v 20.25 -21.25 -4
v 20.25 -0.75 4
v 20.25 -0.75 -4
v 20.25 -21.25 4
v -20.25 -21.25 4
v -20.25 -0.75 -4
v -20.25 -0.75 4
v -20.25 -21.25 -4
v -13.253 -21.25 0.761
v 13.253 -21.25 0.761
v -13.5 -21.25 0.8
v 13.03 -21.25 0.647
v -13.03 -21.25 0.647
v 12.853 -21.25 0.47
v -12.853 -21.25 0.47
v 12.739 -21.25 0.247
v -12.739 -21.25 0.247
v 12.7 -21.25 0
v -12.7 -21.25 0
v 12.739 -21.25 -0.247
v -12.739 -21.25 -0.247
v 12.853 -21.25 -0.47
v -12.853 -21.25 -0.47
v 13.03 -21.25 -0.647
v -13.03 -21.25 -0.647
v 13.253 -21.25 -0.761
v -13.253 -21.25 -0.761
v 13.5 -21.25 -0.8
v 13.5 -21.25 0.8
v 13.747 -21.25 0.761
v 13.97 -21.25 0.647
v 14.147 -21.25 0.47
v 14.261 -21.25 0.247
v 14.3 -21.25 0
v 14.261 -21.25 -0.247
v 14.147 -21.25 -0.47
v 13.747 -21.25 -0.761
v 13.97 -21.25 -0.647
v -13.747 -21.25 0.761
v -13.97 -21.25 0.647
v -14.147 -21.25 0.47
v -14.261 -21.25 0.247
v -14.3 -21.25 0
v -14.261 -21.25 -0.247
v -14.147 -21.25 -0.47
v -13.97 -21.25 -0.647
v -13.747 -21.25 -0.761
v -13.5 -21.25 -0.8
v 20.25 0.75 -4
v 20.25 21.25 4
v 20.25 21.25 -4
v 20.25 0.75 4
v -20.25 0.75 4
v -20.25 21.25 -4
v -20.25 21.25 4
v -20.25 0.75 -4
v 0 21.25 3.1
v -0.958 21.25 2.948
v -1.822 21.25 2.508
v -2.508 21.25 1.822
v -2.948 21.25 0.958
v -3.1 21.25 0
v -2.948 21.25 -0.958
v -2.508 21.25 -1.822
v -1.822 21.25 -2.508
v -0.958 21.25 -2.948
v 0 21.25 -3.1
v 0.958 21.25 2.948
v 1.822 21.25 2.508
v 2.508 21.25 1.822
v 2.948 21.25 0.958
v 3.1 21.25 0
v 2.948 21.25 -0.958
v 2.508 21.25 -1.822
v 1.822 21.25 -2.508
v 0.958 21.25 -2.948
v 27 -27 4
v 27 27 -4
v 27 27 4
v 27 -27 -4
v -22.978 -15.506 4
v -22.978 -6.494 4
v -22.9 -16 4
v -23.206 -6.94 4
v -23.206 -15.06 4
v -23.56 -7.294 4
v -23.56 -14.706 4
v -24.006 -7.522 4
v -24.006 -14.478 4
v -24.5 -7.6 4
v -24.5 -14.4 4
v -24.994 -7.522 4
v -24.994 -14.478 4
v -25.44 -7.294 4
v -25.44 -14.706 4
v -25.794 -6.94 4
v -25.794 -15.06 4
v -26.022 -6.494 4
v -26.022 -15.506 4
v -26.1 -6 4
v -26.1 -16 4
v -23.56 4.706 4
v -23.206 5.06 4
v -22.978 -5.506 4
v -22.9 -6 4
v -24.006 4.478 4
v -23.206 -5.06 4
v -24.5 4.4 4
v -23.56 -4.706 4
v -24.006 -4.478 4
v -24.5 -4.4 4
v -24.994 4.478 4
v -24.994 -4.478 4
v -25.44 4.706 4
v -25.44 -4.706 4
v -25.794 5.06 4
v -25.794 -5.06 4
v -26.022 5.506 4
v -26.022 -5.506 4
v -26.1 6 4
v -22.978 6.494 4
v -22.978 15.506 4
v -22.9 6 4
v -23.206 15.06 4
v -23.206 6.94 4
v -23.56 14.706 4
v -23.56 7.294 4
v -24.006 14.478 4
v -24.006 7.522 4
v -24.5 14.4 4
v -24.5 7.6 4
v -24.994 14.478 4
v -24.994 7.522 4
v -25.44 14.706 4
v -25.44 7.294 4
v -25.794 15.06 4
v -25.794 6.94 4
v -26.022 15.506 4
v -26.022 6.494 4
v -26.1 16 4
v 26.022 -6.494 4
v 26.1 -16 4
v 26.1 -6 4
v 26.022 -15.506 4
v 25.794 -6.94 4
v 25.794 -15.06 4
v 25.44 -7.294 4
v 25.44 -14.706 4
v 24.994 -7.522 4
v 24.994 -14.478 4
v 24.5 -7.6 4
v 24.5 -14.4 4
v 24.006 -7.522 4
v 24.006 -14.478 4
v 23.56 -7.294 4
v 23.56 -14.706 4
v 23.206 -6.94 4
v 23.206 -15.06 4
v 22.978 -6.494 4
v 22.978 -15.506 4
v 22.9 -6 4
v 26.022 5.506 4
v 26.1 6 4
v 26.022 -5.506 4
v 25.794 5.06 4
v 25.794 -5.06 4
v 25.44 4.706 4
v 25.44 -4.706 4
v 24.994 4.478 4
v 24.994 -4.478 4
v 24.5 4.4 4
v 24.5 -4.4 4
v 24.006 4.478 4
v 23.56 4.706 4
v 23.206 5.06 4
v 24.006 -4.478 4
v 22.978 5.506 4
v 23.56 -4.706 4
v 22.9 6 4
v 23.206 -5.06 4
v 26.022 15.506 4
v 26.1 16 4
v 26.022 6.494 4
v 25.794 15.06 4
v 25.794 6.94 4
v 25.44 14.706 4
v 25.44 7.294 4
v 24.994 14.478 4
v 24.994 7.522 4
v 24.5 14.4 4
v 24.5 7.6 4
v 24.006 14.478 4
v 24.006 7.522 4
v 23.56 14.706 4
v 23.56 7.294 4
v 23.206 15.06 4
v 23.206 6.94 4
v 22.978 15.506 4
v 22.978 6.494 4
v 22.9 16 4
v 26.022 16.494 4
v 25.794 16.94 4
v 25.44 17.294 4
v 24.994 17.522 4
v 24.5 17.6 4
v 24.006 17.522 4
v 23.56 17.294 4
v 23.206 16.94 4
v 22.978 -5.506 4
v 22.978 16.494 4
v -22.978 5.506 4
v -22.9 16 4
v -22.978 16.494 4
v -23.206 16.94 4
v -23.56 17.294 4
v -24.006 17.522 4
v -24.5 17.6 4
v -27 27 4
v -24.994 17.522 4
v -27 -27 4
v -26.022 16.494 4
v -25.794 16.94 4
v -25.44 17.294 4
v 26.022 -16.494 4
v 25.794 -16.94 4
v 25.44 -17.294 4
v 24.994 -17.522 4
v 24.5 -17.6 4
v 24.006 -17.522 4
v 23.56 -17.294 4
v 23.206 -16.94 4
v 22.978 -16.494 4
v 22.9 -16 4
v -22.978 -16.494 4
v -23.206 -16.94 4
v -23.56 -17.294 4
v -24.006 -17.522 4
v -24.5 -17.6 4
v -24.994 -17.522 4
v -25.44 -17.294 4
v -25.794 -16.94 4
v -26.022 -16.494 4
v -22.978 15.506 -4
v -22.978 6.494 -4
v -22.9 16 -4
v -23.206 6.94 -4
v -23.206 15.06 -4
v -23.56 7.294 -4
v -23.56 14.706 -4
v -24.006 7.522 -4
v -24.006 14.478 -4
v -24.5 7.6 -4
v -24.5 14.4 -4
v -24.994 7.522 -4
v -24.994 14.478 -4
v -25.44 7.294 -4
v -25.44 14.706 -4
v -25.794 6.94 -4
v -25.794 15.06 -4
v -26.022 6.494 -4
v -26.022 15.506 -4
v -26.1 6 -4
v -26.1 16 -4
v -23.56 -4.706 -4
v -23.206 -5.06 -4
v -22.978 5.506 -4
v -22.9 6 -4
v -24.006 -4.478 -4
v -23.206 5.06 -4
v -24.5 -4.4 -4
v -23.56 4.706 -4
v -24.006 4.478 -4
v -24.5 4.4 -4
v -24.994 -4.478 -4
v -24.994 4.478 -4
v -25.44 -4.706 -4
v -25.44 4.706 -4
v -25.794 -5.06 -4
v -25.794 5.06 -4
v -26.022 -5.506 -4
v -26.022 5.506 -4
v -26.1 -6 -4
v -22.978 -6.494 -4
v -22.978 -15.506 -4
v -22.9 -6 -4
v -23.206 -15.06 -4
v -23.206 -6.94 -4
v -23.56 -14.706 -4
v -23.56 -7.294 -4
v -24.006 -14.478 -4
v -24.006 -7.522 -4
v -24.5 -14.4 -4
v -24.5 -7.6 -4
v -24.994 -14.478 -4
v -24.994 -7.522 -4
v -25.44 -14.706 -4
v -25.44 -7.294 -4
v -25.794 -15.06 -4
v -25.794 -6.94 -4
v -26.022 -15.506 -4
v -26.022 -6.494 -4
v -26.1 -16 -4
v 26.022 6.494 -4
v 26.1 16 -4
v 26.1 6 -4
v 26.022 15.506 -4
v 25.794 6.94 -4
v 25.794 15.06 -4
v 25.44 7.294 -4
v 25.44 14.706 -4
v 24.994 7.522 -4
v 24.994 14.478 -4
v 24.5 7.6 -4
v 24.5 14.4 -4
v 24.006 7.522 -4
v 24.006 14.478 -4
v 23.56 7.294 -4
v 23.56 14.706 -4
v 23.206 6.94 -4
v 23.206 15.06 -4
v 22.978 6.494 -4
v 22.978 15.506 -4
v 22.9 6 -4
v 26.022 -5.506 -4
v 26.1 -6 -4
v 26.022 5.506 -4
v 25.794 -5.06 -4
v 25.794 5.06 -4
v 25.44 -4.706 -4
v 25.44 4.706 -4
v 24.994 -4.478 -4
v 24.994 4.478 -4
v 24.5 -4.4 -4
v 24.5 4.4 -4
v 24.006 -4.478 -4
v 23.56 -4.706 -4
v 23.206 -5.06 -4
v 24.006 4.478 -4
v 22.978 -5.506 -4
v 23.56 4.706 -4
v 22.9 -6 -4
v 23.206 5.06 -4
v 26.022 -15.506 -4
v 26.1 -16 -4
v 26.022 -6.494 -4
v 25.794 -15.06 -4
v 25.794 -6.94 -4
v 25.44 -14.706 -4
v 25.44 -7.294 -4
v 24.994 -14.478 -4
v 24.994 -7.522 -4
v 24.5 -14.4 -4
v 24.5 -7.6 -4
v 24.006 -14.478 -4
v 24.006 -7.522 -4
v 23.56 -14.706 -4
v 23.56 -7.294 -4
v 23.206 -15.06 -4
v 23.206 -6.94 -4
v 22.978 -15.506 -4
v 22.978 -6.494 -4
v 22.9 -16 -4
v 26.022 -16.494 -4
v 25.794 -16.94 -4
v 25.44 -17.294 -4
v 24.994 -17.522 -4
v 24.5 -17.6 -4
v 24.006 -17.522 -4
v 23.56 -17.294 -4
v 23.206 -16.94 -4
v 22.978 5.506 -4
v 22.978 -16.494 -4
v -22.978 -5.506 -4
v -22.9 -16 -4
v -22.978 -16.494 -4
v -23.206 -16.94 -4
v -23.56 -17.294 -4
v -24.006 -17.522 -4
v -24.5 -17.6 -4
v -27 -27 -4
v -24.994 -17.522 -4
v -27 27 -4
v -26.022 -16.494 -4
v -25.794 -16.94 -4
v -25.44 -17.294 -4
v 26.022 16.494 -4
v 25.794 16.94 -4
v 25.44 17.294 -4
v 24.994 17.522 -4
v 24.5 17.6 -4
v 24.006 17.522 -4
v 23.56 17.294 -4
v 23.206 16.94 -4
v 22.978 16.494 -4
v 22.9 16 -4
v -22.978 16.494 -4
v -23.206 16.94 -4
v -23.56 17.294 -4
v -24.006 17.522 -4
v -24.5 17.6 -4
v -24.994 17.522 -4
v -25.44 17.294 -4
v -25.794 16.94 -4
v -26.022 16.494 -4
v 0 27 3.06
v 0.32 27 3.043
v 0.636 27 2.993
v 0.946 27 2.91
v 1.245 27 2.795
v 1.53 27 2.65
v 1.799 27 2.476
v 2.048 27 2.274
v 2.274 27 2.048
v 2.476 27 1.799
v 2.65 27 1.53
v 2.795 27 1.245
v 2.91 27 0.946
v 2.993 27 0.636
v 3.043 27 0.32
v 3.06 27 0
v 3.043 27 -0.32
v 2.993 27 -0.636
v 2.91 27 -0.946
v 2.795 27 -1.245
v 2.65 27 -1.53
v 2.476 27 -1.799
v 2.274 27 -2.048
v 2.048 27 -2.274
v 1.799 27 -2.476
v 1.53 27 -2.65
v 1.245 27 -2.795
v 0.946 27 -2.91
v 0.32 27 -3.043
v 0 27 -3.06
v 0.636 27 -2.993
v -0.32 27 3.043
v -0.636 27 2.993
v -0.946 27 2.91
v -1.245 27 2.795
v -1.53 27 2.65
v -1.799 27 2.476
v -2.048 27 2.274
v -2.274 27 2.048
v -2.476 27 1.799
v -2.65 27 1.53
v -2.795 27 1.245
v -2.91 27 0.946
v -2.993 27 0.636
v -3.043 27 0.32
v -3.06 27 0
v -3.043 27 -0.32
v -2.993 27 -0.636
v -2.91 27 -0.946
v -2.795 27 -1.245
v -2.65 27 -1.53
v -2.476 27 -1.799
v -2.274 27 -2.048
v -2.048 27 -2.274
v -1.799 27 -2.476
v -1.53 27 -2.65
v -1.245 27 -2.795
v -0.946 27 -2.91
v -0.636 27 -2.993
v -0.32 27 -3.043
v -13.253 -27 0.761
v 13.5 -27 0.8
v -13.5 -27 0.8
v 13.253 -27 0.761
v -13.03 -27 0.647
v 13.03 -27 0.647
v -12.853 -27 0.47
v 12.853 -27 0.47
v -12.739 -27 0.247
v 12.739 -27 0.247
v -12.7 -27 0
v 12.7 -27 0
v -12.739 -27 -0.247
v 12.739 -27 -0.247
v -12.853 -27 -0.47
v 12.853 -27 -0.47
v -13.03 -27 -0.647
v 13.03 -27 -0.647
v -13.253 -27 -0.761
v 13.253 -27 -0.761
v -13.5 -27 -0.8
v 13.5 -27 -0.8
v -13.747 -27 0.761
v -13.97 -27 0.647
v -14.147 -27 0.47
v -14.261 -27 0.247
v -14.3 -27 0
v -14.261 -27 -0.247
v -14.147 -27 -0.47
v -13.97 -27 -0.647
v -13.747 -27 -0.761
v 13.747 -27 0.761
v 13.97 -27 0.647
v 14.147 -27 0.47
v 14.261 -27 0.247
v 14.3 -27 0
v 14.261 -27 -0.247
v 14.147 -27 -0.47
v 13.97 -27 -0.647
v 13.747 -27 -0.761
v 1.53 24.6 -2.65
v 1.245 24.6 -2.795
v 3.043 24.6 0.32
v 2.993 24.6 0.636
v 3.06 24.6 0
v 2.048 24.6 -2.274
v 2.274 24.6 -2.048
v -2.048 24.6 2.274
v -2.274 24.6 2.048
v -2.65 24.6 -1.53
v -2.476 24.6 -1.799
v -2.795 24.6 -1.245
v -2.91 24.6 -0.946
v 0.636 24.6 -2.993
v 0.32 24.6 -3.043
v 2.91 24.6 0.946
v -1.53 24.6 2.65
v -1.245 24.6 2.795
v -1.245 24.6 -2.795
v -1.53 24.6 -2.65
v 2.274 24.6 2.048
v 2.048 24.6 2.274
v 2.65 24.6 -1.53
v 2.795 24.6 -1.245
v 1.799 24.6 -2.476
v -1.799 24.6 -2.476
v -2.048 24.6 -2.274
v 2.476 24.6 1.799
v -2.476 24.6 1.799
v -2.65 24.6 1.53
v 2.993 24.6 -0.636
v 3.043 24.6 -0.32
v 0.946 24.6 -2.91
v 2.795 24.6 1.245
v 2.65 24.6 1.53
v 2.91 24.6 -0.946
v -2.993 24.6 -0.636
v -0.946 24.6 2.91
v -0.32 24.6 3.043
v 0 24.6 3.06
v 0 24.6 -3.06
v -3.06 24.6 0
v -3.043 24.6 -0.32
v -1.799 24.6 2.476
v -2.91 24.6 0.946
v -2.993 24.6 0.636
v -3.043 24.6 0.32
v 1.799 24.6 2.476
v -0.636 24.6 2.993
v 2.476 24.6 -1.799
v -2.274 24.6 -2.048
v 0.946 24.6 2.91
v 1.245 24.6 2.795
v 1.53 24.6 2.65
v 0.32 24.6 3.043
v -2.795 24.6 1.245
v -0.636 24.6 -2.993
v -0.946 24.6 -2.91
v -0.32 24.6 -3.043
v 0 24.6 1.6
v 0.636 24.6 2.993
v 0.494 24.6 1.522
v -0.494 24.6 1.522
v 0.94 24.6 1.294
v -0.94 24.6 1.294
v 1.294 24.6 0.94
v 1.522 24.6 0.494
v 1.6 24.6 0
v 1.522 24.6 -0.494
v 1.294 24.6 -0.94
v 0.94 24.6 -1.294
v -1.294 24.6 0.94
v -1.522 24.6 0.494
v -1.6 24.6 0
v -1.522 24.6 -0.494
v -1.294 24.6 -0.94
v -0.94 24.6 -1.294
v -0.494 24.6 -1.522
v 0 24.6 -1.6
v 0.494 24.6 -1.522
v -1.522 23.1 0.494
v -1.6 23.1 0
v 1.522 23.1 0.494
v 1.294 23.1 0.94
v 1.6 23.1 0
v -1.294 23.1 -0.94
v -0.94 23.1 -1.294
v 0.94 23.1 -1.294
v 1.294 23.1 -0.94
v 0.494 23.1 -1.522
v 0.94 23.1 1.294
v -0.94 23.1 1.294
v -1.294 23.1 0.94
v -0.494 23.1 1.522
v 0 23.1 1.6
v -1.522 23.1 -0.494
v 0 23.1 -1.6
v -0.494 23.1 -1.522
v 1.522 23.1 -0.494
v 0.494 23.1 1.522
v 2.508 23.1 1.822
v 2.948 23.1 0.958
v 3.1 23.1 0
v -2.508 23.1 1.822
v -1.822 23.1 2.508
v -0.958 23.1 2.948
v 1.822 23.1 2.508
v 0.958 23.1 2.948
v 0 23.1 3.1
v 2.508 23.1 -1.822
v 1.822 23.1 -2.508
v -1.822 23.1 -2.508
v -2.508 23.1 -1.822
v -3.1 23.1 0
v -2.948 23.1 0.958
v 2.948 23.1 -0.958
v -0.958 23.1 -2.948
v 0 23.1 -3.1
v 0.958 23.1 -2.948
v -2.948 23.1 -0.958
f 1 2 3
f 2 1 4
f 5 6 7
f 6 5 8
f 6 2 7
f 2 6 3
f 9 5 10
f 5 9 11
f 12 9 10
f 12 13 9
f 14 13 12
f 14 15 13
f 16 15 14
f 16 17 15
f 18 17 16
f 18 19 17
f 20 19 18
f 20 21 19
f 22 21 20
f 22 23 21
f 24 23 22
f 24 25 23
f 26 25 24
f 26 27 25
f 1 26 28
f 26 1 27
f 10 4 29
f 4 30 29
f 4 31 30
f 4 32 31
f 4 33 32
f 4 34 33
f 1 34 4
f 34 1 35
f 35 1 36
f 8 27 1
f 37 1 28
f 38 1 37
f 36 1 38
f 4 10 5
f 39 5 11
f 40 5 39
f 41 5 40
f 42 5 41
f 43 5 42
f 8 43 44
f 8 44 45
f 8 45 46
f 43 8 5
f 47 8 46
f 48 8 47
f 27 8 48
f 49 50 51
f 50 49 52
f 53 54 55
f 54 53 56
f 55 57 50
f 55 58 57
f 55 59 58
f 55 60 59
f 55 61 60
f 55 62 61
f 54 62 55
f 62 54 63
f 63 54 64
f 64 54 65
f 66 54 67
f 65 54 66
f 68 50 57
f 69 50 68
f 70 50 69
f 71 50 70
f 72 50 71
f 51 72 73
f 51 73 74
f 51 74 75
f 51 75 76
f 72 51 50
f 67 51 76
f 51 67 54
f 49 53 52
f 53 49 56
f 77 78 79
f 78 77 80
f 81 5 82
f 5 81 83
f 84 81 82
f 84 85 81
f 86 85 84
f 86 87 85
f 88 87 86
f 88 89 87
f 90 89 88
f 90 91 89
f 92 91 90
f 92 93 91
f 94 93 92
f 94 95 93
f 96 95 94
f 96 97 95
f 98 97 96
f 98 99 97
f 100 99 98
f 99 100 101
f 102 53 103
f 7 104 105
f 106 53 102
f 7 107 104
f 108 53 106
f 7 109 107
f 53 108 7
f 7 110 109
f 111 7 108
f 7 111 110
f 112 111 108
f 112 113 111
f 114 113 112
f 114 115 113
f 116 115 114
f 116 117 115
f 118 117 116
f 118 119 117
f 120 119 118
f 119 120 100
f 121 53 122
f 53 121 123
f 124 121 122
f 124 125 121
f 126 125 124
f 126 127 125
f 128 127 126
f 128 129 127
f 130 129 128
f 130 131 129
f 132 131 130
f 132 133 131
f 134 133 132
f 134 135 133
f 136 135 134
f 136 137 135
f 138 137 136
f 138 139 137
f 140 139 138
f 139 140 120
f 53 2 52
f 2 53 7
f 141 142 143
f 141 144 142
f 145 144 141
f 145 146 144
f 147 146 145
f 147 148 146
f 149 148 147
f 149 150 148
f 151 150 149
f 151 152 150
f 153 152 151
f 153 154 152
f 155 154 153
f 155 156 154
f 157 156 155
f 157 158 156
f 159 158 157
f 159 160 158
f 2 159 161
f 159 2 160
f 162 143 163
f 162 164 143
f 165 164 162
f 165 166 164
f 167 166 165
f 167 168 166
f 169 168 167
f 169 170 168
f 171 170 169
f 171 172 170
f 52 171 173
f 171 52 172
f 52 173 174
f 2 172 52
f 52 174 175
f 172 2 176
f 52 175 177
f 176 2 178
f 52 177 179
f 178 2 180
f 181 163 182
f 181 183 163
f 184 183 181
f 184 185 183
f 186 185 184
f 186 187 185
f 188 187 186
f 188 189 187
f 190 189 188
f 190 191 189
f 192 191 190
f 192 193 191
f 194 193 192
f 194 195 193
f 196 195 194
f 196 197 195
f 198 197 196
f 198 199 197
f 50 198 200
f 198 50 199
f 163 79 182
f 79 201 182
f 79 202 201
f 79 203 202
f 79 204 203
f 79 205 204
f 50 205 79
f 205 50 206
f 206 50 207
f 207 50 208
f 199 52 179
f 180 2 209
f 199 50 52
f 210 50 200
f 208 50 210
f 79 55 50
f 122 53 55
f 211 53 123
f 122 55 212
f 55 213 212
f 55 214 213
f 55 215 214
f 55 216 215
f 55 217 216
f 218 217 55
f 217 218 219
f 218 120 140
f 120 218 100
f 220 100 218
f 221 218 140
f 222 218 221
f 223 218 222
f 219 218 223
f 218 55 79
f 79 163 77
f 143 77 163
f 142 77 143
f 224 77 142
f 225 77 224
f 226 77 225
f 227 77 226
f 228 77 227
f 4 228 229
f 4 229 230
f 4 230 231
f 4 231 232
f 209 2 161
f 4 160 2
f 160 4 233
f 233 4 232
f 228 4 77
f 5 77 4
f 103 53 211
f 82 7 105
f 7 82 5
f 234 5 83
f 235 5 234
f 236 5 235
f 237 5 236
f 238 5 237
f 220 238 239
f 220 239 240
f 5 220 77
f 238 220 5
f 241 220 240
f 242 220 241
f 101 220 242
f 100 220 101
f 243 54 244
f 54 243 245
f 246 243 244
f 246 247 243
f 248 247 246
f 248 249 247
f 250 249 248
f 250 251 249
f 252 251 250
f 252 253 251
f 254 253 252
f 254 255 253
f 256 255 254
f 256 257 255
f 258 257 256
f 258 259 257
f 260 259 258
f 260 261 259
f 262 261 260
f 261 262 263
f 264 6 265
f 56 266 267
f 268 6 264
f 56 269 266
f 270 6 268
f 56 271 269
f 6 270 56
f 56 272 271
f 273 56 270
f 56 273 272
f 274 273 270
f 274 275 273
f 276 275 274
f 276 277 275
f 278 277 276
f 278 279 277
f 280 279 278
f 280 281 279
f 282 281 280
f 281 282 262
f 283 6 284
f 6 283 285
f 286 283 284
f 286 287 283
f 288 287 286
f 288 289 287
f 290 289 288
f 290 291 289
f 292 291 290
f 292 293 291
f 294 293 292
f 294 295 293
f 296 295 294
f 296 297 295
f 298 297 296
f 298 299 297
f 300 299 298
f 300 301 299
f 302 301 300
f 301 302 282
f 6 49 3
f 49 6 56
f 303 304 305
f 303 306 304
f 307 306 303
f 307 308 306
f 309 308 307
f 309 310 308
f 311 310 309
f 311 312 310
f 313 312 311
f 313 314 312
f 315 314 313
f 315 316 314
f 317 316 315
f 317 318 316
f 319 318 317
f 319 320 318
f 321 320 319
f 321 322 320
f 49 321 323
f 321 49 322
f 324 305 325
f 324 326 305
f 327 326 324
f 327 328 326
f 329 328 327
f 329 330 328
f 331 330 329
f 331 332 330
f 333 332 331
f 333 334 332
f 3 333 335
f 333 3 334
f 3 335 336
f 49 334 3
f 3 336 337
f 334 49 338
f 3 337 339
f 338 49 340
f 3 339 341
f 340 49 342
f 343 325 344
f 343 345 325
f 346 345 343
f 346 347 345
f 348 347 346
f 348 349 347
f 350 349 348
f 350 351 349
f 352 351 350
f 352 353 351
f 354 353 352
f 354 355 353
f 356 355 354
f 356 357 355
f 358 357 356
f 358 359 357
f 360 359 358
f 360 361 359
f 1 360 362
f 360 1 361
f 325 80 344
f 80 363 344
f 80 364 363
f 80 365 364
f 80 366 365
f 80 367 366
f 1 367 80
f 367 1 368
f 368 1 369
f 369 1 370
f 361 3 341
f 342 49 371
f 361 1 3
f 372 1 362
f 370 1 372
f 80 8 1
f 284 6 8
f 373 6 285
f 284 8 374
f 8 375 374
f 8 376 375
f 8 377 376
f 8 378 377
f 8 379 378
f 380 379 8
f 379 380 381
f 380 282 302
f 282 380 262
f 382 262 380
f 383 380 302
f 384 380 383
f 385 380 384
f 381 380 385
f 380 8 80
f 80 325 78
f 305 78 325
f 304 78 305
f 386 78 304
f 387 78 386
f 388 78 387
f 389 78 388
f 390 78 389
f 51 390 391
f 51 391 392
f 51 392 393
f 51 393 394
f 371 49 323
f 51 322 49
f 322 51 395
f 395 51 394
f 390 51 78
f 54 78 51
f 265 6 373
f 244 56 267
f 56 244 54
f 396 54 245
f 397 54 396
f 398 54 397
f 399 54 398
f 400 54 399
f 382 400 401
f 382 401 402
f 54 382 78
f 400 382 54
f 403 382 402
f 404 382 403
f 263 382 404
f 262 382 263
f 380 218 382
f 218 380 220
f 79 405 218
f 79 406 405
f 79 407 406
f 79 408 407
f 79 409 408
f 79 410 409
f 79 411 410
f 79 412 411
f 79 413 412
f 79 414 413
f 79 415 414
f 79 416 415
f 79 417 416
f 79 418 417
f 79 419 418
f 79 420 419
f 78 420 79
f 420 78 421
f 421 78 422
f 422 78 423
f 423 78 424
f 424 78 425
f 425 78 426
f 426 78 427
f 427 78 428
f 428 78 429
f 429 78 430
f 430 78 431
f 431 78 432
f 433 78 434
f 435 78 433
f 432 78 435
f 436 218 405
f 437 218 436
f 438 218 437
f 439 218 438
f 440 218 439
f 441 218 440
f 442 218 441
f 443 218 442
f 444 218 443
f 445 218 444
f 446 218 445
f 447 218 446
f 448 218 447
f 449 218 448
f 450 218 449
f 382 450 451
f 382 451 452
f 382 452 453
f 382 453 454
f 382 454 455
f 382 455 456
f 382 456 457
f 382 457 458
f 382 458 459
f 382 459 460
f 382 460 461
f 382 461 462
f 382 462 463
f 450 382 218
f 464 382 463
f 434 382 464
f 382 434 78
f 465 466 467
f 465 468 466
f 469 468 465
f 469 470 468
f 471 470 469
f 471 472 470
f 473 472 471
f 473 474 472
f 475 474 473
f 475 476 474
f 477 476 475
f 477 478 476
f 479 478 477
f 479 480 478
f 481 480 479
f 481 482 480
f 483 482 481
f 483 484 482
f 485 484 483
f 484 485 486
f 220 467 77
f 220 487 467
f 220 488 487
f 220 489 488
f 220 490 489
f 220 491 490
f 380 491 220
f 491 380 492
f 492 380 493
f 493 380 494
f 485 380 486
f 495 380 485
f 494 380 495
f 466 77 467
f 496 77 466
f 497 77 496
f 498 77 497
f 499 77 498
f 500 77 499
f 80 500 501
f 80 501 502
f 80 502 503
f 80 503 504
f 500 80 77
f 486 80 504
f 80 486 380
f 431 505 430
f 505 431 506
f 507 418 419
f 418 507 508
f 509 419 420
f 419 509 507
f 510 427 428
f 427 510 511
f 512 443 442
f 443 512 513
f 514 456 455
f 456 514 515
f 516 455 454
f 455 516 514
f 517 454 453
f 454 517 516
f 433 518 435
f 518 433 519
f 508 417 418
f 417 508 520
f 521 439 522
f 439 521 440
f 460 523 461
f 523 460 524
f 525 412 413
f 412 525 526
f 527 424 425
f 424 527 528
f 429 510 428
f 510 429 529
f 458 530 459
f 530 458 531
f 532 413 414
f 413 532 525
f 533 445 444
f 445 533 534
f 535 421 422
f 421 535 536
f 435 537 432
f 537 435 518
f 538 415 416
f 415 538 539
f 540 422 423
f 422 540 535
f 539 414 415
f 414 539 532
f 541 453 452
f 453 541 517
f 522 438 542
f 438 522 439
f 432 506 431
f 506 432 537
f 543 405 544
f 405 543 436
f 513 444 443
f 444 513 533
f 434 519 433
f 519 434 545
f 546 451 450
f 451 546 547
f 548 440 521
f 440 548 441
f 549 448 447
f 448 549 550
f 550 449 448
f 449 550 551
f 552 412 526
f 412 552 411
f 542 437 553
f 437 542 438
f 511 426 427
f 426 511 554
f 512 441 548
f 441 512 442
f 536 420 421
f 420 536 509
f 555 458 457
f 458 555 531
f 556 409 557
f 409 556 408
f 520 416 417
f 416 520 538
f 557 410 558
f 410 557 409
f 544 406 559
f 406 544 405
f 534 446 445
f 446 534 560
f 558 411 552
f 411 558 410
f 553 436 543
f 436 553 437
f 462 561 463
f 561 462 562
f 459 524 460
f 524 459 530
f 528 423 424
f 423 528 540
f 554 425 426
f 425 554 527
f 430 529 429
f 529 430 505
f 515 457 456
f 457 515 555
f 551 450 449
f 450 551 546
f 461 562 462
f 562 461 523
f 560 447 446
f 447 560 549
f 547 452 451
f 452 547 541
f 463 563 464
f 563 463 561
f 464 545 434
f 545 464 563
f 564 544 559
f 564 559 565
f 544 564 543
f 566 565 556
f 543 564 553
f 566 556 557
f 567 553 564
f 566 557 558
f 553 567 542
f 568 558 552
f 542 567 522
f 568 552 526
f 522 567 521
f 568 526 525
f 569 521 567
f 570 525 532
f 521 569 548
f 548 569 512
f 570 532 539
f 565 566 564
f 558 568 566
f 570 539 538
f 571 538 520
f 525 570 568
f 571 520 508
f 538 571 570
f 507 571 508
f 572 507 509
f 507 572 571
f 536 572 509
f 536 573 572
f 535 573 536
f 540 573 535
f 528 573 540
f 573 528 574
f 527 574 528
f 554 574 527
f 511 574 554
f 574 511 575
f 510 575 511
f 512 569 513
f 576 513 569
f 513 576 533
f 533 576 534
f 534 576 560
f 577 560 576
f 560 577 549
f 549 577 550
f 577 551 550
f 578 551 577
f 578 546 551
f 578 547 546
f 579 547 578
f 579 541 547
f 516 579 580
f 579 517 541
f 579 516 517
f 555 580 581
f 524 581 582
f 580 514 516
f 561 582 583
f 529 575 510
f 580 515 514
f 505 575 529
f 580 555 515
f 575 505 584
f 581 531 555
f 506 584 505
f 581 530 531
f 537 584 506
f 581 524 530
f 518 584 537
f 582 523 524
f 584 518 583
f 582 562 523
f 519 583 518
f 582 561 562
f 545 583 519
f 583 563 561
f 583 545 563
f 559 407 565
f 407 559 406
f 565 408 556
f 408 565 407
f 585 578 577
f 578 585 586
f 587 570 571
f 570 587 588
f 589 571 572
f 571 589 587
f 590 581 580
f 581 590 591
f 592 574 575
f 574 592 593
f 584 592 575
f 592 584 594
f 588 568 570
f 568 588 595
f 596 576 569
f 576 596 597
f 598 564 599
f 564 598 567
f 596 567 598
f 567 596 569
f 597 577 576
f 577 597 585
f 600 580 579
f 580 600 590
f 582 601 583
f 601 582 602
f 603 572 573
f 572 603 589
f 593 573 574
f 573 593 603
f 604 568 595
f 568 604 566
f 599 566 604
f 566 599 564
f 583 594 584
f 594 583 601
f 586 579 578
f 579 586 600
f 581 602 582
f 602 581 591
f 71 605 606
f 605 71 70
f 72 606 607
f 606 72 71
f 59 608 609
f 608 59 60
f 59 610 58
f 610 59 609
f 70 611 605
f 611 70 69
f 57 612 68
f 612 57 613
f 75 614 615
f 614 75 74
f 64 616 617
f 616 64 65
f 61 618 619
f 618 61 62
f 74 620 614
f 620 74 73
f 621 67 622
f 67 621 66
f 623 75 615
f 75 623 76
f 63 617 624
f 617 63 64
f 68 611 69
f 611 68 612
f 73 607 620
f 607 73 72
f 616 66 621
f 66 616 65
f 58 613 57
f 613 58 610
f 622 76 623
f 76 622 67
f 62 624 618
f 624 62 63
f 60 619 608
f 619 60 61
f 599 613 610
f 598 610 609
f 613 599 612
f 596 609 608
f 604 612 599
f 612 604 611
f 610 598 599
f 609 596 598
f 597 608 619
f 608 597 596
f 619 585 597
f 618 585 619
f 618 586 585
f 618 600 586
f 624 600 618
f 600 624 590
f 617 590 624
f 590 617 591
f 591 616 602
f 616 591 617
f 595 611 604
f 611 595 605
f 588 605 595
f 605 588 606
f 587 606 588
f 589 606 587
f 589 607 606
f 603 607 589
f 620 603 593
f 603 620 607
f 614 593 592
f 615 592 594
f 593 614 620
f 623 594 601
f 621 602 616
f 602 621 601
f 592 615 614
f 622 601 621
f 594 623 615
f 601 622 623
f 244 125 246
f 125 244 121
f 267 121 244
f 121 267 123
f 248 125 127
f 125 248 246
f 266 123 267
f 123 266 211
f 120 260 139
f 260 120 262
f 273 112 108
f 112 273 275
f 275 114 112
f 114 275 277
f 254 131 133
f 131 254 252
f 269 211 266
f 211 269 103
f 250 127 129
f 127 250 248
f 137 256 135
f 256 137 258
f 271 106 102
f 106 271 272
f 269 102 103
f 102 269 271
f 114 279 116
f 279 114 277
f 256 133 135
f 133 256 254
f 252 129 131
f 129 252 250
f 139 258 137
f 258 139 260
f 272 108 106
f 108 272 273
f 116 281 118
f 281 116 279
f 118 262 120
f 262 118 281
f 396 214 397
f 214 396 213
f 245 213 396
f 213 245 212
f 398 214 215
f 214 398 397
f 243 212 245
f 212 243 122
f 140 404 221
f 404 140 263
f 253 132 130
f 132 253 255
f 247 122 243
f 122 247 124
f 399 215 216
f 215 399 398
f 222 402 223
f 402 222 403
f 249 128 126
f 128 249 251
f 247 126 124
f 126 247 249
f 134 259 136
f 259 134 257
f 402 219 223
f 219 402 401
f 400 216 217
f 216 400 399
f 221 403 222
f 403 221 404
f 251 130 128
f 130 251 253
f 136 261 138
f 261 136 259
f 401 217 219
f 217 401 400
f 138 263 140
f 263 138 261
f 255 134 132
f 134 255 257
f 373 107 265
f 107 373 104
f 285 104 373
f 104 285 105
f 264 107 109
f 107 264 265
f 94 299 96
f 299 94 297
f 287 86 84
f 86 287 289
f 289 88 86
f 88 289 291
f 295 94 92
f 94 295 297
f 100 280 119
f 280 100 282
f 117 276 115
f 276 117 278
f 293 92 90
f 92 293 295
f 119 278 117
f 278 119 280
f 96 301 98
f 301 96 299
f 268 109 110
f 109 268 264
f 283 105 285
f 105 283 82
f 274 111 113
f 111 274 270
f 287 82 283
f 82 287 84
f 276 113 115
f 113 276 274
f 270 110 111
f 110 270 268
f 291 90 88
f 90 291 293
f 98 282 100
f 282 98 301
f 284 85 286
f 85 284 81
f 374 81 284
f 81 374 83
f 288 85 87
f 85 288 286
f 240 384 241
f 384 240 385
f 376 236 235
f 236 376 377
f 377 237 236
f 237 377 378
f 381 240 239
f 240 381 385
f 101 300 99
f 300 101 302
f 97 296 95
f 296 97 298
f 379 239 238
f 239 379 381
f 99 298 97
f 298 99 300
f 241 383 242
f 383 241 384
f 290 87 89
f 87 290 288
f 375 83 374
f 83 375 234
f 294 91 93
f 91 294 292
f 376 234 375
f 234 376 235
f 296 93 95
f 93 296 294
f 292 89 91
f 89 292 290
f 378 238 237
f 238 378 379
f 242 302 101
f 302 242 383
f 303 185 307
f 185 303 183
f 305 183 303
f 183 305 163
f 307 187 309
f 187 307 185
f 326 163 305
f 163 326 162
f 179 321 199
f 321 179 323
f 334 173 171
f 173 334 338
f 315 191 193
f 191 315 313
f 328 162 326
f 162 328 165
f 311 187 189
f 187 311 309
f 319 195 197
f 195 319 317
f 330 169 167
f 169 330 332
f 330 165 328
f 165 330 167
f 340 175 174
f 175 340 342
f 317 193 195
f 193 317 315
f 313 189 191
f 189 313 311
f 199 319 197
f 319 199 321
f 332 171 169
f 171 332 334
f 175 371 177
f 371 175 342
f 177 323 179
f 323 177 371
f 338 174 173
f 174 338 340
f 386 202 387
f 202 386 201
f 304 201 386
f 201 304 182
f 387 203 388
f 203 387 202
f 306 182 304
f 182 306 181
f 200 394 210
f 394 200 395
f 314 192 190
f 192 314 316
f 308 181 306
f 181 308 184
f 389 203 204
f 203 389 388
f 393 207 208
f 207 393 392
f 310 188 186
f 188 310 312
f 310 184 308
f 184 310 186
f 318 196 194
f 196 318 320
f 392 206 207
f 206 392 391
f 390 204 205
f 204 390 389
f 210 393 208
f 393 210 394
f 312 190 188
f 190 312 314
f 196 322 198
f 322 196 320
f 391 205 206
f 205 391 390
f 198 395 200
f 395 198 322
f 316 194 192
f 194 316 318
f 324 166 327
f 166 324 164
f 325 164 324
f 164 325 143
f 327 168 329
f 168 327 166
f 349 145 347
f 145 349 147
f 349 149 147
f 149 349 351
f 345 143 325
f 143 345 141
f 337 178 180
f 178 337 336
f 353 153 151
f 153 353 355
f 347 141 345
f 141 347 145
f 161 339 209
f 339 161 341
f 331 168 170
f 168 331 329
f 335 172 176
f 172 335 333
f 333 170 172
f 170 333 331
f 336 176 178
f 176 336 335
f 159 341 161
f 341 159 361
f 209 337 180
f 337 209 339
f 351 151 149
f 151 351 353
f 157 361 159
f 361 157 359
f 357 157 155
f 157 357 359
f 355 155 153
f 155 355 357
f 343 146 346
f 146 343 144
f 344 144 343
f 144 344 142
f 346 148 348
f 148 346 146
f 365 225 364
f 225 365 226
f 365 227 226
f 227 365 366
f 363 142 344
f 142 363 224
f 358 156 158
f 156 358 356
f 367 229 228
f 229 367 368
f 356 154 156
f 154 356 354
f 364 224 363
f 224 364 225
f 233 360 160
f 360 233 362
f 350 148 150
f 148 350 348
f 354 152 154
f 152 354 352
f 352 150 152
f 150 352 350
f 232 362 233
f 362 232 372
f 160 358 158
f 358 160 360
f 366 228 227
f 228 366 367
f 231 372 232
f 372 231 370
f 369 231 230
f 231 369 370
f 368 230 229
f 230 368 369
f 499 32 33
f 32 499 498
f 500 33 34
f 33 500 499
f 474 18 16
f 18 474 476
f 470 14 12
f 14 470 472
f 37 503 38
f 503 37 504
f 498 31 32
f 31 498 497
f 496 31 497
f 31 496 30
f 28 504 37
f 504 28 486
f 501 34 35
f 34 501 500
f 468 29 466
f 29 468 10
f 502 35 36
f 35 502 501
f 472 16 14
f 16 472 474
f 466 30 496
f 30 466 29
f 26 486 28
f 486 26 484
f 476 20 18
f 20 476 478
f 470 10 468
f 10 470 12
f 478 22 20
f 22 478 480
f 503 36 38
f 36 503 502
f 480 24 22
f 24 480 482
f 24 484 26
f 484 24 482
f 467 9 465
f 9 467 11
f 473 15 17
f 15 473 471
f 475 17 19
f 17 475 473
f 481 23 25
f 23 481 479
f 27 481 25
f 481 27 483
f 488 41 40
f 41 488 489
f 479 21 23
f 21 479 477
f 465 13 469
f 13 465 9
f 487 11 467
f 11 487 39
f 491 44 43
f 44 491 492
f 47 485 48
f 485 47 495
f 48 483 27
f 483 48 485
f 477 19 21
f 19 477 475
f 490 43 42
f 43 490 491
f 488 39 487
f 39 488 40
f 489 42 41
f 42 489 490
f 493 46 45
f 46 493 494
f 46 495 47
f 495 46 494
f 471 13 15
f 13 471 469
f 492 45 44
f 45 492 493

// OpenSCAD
// file: servo.scad
/*************************************************
 hitec Servo Library
 Author: Maarten Weyn
 Website: http://mweyn.wesdec.be

 v0.4


 Servo Modules:
 - Servo_Hitec_HS_645MG(showaxis=false)
 - Servo_Hitec_HS_485HB(showaxis=false)

 * showaxis shows the other side of the axis which can be used as a connection point

  Horn Modules
 - Horn_Hitec_HD_LS(fulldetail=true) Heavy Duty L Horn
 - Horn_Hitec_R_X(fulldetail=true)  Regular X Horn

 * fulldetail=false only gives the exterior which makes it easier to use in a difference


Changes
v0.4: 
	- added cylinder near label
	- fixed cylinder radios on top (near axis) for HS 485HB


*************************************************/


$fn=50;

// Servos
module Servo_Hitec_HS_645MG(showaxis=false)
{
	Servo_Hitec_Standard(showaxis, 40.6, 19.8, 35.8, 2, 27, 6.4, 30.7, 13, 6, 6, 3.5, 5);
}

module Servo_Hitec_HS_485HB(showaxis=false)
{
	Servo_Hitec_Standard(showaxis, 40, 19.82, 34.8, 3, 28, 6.55, 30, 14, 1, 6, 3.5, 1);
}

module Servo_Hitec_Standard(showaxis=false, boxlength, boxwidth, boxheight, topheight, connectionheight, connectionlength, axisxposition, topclinderradius, wirelength, wirewidth, wireheight, wirezposition)
{

	translate([-axisxposition, -boxwidth/2, -boxheight]) 
	{
		cube([boxlength, boxwidth, boxheight]);

		Servo_HS_Standard_Connections(connectionheight, connectionlength, boxwidth);
		rotate(180) translate([-boxlength, -boxwidth,0]) Servo_HS_Standard_Connections(connectionheight, connectionlength, boxwidth);

		translate([axisxposition, boxwidth/2, boxheight]) cylinder(h=topheight,r=19.8/2);
		translate([6, 1.15, boxheight]) cube([22.1, 17.5, topheight]);
		
		translate([8.5, boxwidth/2, boxheight]) cylinder(h=topheight,r=5.5);

		translate([axisxposition, boxwidth/2, boxheight + topheight]) cylinder(h=2,r=topclinderradius/2);
		translate([axisxposition, boxwidth/2, boxheight + topheight + 2]) cylinder(h=3.2,r=5.5/2);

		translate([boxlength,(boxwidth-wirewidth)/2,wirezposition]) cube([wirelength, wirewidth,wireheight]);

		if (showaxis)			
			translate([axisxposition, boxwidth/2, -7]) %cylinder(h=50,r=5.5/2);

	}
}

module Servo_HS_Standard_Connections(zPosition, length, width )
{
	translate([-length,0,zPosition])	
		difference()
		{
			union()
			{
				cube([20, width, 2]);
				
				translate([0,width/2,0])
				hull()
				{
					cube([0.1, 1, 2.5]);
					translate([length - 0.01,0,0])	 cube([1, 1, 4]);
				}
			}


			for(y=[4.8, 15])
			{
				translate([-1, y-1.25, -1]) cube([3, 2.5, 4]);
				translate([2.5,y,-1]) cylinder(h=4,r=2.21);
			}
		}
}


// Horns
module Horn_Hitec_HD_LS(fulldetail=true)
{

	hornScrewDiameter = 1.6;

	translate([0, 0, -1])
	difference()
	{
	union()
	{
		hull()
		{
			cylinder(h=2, r=7);
			translate([22, 0, 0]) cylinder(h=2, r=4);
		}
		
		hull()
		{
			translate([0, 0,  -1]) 
			{
				cylinder(h=4, r=5.5);
				translate([0, -5,  0])  cube([6, 10, 4]);
			}
	
			cylinder(h=2, r=7);
			translate([0, -6,  0])  cube([7, 12, 2]);			
		}

		hull()
		{
			translate([0, 0,  -3]) 
			{
				cylinder(h=2, r=4);
				translate([0, 0,  1.8])  cylinder(h=0.2, r=5.5);
			}	
		}		
	}

	if (fulldetail)
	{
		union()
		{
			translate([0, 0, -4]) cylinder(h=8, r=1);
			translate([0, 0,  1]) cylinder(h=3, r=4.5);
			translate([0, 0, -4]) cylinder(h=4, r=3);
		}

		for ( x = [13, 16, 19, 22]) {
			translate([x, 0,  -1])cylinder(h=4, r=hornScrewDiameter/2);
		}
	}
	}
}

module Horn_Hitec_R_X(fulldetail=true)
{
	hornScrewDiameter = 1.5;
	difference()
	{
		union()
		{
			hull()
			{
				cylinder(h=2, r=5.5);
				translate([13.25,0,0]) cylinder(h=2, r=2);
				translate([-13.25,0,0]) cylinder(h=2, r=2);
			}
			hull()
			{
				cylinder(h=2, r=5.5);
				translate([0,13.75,0]) cylinder(h=2, r=2);
				translate([0,-13.75,0]) cylinder(h=2, r=2);
			}

			translate([0,0,-2]) cylinder(h=4, r=4.4);
			cylinder(h=2.5, r=4);
		}

		if (fulldetail)
		{
			translate([0,0,-3]) cylinder(h=8, r=1.5);
			translate([0,0,1.5]) cylinder(h=2, r=3);
			translate([0,0,-5]) cylinder(h=6, r=2.5);

			for ( x = [-12.5, -10, -7.5, 7.5, 10, 12.5]) {
				translate([x, 0,  -1]) cylinder(h=4, r=hornScrewDiameter/2);
			}
			for ( y = [-13, -10.5, -8, 8, 10.5, 13]) {
				translate([0, y,  -1]) cylinder(h=4, r=hornScrewDiameter/2);
			}
		}
	}	
}

module servo()
{
   boxlength = 40.0;
   boxwidth = 20.0;
   boxheight = 41.0;
  //topheight, connectionheight, connectionlength, axisxposition, topclinderradius, wirelength, wirewidth, wireheight, wirezposition
  
		Servo_Hitec_Standard(false, boxlength, boxwidth, boxheight, 0, 28, 7.0, 30, 16, 6, 6, 3.5, 5);
}

// a module to make difference into another model, it just add some tolerance
module servo_for_difference()
{
   boxlength = 40.0 + 0.2;
   boxwidth = 20.0 + 0.2;
   boxheight = 41.0 + 0.2;
  //topheight, connectionheight, connectionlength, axisxposition, topclinderradius, wirelength, wirewidth, wireheight, wirezposition
  
		Servo_Hitec_Standard(false, boxlength, boxwidth, boxheight, 0, 28, 7.0, 30, 16, 6, 6, 3.5, 5);
}

// 10 mm distance between screws
//translate([15,5,-14])cylinder(d=3,h=10,$fn=30);
//translate([15,-5,-14])cylinder(d=3,h=10,$fn=30);
module servo_for_mujoco(){
  rotate([90,90,0])
  servo();
  }

//servo();
  //rotate([180,0,270])servo_for_mujoco();
// main file
include <servo.scad>
width = 6; // width of one side in Y axis
tilt_screw_separation =27/2;// tilt servo screw distance separation
bearing_distance = 0.1+3.5; // 0.1 lo minimo
heigth = 8;
m3=3.2;
bearing_diameter=6.12;


module servo_mount(){
  tolerance = 0.5;
  cube([40.0+tolerance, 20.0+tolerance, 41.0+tolerance], center=true);
  }

module two_servo_base(){
translate([10,0,0])
difference(){
  translate([-10,0,0])cube([54,42+width*2,heigth], center=true);
  
color([1,0,0,0.2])
union(){
translate([-10,-11,0])servo_mount();
translate([-10,11,0])servo_mount();  
}


// mr63zz bearing
translate([-10,41+bearing_distance,0])rotate([90,0,0])cylinder(d=bearing_diameter,h=20,$fn=60);
// bearing screw 3mm
translate([-10,40,0])rotate([90,0,0])cylinder(d=m3,h=20,$fn=20);

translate([-10,21.1+2,0])rotate([90,0,0])cylinder(d=m3+3,h=12,$fn=20);


// arm servo screws
translate([-34.5,6,-10])cylinder(d=m3,h=20,$fn=20);
translate([-34.5,16,-10])cylinder(d=m3,h=20,$fn=20);
translate([-34.5,-6,-10])cylinder(d=m3,h=20,$fn=20);
translate([-34.5,-16,-10])cylinder(d=m3,h=20,$fn=20);

translate([14.5,6,-10])cylinder(d=m3,h=20,$fn=20);
translate([14.5,16,-10])cylinder(d=m3,h=20,$fn=20);
translate([14.5,-6,-10])cylinder(d=m3,h=20,$fn=20);
translate([14.5,-16,-10])cylinder(d=m3,h=20,$fn=20);
// tilt servo screws
translate([-10 + tilt_screw_separation,-10,0])rotate([90,0,0])cylinder(d=1.6,h=20,$fn=20);
translate([-10 - tilt_screw_separation,-10,0])rotate([90,0,0])cylinder(d=1.6,h=20,$fn=20);


}

}

module two_servo_base_for_mujoco(){
color([0,0.8,0])
rotate([90,90,0])
two_servo_base();
}

module two_servo_for_mujoco(){
 translate([11,-15,-10])servo_for_mujoco();
 translate([-11,-15,-10])servo_for_mujoco();
}
two_servo_base();
